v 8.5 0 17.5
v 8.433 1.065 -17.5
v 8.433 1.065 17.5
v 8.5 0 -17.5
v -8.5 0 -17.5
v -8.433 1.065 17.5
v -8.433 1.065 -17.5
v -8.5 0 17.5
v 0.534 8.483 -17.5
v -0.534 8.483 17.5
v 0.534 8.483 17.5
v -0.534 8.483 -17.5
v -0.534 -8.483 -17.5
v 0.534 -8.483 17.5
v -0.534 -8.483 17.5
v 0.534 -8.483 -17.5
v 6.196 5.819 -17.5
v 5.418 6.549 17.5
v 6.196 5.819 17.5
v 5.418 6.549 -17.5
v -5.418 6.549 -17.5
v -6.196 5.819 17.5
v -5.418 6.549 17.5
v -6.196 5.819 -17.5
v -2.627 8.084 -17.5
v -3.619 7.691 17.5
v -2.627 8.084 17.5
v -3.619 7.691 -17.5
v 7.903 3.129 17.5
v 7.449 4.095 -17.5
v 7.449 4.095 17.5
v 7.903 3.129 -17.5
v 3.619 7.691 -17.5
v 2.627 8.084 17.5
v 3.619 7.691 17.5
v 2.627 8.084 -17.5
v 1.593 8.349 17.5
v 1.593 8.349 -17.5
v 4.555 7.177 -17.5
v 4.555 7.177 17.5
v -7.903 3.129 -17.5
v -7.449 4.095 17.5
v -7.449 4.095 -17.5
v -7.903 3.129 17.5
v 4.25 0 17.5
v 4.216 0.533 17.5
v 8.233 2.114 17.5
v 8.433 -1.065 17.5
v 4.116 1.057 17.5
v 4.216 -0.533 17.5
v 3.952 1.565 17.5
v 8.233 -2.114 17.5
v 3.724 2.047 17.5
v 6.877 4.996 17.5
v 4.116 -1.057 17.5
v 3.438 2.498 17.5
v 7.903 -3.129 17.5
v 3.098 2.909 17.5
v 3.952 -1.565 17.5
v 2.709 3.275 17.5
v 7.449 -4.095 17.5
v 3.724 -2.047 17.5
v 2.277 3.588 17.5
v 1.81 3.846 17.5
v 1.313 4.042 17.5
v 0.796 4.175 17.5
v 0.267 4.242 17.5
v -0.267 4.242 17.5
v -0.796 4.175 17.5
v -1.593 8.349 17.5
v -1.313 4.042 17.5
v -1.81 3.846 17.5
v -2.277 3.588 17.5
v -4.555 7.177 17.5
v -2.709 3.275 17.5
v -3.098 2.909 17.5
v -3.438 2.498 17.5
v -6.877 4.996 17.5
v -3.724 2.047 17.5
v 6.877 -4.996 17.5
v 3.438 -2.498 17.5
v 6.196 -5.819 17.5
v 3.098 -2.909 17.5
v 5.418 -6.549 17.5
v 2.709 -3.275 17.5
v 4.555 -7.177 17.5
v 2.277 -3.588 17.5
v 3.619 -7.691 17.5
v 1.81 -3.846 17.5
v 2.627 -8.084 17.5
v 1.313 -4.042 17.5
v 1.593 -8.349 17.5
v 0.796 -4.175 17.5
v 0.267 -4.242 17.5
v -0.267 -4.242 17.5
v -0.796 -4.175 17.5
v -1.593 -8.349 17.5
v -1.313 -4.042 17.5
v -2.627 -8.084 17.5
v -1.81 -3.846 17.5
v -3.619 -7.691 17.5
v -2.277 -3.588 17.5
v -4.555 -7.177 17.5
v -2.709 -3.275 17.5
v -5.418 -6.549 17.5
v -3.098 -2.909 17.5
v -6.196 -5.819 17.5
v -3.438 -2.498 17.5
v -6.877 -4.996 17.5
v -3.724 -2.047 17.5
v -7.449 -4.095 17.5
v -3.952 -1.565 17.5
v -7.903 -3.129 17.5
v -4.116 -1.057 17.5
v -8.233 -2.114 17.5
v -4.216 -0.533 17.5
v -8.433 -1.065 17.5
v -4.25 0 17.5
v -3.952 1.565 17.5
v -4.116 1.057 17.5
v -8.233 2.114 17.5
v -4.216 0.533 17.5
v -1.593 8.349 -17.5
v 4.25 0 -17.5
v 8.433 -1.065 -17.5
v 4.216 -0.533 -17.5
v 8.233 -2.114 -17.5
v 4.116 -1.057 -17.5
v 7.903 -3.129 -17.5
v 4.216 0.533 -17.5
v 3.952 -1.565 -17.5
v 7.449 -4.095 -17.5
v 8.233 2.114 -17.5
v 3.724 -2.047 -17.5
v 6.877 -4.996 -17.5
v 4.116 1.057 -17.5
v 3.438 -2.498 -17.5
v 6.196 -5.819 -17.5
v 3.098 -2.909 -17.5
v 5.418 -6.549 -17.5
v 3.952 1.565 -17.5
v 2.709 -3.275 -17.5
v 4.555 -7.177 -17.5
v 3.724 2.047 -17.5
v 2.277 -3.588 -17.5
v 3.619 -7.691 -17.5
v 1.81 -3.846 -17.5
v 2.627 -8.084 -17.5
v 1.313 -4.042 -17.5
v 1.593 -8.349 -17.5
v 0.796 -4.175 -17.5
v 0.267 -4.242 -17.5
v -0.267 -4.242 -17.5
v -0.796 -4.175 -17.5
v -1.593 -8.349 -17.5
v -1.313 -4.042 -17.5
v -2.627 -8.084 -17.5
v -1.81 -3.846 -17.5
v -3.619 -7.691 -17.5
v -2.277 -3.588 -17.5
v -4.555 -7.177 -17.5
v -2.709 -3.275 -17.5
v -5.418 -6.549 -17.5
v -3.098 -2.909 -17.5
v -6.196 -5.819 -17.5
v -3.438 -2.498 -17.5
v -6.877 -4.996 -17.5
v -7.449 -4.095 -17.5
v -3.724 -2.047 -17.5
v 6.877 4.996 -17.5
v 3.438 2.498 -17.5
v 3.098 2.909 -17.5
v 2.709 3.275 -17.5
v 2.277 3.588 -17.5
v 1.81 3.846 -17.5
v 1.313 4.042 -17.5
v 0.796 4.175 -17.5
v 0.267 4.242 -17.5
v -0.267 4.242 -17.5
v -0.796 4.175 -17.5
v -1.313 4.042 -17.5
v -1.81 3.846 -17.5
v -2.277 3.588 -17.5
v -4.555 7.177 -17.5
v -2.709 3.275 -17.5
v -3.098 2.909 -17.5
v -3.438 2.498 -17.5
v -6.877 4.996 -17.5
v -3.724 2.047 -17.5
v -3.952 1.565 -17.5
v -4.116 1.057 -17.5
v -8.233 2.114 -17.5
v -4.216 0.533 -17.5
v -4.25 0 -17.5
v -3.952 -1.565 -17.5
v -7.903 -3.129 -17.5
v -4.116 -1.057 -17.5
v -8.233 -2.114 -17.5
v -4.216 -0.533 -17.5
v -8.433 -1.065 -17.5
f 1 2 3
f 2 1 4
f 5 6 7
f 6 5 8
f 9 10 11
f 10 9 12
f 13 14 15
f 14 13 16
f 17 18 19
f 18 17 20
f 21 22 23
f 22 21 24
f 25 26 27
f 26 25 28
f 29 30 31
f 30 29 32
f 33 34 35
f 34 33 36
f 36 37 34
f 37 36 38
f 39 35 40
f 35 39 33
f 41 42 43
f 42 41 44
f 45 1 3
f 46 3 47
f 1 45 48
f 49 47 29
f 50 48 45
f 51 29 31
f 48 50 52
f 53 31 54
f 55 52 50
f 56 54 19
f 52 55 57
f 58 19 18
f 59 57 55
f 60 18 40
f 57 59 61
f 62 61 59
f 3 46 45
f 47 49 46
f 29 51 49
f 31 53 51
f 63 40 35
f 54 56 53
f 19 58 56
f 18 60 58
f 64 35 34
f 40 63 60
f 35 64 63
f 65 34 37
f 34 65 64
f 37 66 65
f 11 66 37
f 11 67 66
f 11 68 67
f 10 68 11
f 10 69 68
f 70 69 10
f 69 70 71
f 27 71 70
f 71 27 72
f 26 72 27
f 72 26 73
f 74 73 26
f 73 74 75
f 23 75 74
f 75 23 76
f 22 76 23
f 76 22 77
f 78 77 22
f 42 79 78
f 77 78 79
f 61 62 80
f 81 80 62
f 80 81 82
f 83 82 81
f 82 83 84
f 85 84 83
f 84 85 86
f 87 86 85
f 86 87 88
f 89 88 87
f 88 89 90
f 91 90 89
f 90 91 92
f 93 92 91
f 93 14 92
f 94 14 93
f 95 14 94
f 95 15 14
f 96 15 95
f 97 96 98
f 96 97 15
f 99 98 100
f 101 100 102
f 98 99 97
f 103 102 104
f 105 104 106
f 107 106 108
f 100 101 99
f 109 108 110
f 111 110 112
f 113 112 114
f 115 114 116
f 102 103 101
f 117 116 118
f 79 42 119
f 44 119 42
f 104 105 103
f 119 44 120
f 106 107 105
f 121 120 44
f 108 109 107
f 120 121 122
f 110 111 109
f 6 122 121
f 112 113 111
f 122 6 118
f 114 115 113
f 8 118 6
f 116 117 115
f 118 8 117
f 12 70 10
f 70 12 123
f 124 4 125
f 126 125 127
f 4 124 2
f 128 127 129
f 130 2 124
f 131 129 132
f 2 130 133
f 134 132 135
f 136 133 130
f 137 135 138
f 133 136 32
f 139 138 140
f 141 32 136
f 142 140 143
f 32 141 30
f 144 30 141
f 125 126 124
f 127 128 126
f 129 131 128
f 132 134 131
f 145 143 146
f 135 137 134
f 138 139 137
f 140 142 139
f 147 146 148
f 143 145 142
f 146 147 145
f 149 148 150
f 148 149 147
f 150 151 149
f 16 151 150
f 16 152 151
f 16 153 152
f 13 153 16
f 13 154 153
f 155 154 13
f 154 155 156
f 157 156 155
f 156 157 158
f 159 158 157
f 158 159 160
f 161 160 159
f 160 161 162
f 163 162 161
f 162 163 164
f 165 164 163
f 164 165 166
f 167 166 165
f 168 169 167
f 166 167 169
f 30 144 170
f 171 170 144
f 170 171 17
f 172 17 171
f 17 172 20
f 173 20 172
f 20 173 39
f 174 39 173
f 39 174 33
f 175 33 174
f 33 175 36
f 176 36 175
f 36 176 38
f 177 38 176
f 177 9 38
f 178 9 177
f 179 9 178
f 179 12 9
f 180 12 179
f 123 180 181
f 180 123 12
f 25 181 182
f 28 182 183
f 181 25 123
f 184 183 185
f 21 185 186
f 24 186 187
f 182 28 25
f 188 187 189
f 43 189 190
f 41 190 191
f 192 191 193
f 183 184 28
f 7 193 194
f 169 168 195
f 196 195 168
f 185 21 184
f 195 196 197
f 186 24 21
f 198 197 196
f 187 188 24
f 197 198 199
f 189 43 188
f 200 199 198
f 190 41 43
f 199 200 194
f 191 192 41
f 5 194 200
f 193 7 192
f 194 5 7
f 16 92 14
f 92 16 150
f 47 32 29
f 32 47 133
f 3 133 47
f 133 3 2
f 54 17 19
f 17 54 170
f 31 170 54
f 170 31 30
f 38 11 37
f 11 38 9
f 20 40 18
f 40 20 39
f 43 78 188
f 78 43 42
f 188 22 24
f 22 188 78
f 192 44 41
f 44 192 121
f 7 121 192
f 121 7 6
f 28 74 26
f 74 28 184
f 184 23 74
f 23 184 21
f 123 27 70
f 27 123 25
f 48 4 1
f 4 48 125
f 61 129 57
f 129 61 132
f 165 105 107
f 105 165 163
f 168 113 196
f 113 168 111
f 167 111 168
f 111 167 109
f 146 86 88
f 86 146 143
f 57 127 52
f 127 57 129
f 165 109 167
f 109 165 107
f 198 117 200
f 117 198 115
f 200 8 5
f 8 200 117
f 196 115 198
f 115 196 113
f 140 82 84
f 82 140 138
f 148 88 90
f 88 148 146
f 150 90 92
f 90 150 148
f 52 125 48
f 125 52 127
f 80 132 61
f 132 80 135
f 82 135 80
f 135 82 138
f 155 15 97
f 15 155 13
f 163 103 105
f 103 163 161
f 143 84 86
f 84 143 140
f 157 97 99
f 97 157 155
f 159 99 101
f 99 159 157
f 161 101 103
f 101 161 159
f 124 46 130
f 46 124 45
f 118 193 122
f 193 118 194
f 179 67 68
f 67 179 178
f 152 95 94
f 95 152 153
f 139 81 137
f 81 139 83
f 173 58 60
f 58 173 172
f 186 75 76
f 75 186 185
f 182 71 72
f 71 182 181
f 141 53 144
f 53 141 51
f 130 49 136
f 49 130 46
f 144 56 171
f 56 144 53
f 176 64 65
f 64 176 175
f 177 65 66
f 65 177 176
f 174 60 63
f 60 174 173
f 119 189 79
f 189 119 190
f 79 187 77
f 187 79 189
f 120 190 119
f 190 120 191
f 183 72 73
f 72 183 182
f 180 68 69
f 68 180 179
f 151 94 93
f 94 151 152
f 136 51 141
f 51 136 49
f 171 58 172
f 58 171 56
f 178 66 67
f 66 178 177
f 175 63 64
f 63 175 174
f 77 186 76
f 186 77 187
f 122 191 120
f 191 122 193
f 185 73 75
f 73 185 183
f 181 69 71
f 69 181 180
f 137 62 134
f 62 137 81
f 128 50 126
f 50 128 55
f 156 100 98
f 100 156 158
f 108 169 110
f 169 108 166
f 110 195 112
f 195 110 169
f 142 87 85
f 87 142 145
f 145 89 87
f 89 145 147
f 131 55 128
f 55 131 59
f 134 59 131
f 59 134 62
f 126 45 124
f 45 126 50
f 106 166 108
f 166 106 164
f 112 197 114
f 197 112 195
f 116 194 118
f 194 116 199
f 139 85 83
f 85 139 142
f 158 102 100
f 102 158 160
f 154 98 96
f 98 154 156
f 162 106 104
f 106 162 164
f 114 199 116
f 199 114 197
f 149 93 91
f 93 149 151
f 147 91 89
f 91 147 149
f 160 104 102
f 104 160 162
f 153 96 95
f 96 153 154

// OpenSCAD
$fn = 50;


difference() {
	union() {
		translate(v = [0, 0, -17.5000000000]) {
			cylinder(h = 35, r = 8.5000000000);
		}
	}
	union() {
		translate(v = [0, 0, -100.0000000000]) {
			cylinder(h = 200, r = 4.2500000000);
		}
	}
}
